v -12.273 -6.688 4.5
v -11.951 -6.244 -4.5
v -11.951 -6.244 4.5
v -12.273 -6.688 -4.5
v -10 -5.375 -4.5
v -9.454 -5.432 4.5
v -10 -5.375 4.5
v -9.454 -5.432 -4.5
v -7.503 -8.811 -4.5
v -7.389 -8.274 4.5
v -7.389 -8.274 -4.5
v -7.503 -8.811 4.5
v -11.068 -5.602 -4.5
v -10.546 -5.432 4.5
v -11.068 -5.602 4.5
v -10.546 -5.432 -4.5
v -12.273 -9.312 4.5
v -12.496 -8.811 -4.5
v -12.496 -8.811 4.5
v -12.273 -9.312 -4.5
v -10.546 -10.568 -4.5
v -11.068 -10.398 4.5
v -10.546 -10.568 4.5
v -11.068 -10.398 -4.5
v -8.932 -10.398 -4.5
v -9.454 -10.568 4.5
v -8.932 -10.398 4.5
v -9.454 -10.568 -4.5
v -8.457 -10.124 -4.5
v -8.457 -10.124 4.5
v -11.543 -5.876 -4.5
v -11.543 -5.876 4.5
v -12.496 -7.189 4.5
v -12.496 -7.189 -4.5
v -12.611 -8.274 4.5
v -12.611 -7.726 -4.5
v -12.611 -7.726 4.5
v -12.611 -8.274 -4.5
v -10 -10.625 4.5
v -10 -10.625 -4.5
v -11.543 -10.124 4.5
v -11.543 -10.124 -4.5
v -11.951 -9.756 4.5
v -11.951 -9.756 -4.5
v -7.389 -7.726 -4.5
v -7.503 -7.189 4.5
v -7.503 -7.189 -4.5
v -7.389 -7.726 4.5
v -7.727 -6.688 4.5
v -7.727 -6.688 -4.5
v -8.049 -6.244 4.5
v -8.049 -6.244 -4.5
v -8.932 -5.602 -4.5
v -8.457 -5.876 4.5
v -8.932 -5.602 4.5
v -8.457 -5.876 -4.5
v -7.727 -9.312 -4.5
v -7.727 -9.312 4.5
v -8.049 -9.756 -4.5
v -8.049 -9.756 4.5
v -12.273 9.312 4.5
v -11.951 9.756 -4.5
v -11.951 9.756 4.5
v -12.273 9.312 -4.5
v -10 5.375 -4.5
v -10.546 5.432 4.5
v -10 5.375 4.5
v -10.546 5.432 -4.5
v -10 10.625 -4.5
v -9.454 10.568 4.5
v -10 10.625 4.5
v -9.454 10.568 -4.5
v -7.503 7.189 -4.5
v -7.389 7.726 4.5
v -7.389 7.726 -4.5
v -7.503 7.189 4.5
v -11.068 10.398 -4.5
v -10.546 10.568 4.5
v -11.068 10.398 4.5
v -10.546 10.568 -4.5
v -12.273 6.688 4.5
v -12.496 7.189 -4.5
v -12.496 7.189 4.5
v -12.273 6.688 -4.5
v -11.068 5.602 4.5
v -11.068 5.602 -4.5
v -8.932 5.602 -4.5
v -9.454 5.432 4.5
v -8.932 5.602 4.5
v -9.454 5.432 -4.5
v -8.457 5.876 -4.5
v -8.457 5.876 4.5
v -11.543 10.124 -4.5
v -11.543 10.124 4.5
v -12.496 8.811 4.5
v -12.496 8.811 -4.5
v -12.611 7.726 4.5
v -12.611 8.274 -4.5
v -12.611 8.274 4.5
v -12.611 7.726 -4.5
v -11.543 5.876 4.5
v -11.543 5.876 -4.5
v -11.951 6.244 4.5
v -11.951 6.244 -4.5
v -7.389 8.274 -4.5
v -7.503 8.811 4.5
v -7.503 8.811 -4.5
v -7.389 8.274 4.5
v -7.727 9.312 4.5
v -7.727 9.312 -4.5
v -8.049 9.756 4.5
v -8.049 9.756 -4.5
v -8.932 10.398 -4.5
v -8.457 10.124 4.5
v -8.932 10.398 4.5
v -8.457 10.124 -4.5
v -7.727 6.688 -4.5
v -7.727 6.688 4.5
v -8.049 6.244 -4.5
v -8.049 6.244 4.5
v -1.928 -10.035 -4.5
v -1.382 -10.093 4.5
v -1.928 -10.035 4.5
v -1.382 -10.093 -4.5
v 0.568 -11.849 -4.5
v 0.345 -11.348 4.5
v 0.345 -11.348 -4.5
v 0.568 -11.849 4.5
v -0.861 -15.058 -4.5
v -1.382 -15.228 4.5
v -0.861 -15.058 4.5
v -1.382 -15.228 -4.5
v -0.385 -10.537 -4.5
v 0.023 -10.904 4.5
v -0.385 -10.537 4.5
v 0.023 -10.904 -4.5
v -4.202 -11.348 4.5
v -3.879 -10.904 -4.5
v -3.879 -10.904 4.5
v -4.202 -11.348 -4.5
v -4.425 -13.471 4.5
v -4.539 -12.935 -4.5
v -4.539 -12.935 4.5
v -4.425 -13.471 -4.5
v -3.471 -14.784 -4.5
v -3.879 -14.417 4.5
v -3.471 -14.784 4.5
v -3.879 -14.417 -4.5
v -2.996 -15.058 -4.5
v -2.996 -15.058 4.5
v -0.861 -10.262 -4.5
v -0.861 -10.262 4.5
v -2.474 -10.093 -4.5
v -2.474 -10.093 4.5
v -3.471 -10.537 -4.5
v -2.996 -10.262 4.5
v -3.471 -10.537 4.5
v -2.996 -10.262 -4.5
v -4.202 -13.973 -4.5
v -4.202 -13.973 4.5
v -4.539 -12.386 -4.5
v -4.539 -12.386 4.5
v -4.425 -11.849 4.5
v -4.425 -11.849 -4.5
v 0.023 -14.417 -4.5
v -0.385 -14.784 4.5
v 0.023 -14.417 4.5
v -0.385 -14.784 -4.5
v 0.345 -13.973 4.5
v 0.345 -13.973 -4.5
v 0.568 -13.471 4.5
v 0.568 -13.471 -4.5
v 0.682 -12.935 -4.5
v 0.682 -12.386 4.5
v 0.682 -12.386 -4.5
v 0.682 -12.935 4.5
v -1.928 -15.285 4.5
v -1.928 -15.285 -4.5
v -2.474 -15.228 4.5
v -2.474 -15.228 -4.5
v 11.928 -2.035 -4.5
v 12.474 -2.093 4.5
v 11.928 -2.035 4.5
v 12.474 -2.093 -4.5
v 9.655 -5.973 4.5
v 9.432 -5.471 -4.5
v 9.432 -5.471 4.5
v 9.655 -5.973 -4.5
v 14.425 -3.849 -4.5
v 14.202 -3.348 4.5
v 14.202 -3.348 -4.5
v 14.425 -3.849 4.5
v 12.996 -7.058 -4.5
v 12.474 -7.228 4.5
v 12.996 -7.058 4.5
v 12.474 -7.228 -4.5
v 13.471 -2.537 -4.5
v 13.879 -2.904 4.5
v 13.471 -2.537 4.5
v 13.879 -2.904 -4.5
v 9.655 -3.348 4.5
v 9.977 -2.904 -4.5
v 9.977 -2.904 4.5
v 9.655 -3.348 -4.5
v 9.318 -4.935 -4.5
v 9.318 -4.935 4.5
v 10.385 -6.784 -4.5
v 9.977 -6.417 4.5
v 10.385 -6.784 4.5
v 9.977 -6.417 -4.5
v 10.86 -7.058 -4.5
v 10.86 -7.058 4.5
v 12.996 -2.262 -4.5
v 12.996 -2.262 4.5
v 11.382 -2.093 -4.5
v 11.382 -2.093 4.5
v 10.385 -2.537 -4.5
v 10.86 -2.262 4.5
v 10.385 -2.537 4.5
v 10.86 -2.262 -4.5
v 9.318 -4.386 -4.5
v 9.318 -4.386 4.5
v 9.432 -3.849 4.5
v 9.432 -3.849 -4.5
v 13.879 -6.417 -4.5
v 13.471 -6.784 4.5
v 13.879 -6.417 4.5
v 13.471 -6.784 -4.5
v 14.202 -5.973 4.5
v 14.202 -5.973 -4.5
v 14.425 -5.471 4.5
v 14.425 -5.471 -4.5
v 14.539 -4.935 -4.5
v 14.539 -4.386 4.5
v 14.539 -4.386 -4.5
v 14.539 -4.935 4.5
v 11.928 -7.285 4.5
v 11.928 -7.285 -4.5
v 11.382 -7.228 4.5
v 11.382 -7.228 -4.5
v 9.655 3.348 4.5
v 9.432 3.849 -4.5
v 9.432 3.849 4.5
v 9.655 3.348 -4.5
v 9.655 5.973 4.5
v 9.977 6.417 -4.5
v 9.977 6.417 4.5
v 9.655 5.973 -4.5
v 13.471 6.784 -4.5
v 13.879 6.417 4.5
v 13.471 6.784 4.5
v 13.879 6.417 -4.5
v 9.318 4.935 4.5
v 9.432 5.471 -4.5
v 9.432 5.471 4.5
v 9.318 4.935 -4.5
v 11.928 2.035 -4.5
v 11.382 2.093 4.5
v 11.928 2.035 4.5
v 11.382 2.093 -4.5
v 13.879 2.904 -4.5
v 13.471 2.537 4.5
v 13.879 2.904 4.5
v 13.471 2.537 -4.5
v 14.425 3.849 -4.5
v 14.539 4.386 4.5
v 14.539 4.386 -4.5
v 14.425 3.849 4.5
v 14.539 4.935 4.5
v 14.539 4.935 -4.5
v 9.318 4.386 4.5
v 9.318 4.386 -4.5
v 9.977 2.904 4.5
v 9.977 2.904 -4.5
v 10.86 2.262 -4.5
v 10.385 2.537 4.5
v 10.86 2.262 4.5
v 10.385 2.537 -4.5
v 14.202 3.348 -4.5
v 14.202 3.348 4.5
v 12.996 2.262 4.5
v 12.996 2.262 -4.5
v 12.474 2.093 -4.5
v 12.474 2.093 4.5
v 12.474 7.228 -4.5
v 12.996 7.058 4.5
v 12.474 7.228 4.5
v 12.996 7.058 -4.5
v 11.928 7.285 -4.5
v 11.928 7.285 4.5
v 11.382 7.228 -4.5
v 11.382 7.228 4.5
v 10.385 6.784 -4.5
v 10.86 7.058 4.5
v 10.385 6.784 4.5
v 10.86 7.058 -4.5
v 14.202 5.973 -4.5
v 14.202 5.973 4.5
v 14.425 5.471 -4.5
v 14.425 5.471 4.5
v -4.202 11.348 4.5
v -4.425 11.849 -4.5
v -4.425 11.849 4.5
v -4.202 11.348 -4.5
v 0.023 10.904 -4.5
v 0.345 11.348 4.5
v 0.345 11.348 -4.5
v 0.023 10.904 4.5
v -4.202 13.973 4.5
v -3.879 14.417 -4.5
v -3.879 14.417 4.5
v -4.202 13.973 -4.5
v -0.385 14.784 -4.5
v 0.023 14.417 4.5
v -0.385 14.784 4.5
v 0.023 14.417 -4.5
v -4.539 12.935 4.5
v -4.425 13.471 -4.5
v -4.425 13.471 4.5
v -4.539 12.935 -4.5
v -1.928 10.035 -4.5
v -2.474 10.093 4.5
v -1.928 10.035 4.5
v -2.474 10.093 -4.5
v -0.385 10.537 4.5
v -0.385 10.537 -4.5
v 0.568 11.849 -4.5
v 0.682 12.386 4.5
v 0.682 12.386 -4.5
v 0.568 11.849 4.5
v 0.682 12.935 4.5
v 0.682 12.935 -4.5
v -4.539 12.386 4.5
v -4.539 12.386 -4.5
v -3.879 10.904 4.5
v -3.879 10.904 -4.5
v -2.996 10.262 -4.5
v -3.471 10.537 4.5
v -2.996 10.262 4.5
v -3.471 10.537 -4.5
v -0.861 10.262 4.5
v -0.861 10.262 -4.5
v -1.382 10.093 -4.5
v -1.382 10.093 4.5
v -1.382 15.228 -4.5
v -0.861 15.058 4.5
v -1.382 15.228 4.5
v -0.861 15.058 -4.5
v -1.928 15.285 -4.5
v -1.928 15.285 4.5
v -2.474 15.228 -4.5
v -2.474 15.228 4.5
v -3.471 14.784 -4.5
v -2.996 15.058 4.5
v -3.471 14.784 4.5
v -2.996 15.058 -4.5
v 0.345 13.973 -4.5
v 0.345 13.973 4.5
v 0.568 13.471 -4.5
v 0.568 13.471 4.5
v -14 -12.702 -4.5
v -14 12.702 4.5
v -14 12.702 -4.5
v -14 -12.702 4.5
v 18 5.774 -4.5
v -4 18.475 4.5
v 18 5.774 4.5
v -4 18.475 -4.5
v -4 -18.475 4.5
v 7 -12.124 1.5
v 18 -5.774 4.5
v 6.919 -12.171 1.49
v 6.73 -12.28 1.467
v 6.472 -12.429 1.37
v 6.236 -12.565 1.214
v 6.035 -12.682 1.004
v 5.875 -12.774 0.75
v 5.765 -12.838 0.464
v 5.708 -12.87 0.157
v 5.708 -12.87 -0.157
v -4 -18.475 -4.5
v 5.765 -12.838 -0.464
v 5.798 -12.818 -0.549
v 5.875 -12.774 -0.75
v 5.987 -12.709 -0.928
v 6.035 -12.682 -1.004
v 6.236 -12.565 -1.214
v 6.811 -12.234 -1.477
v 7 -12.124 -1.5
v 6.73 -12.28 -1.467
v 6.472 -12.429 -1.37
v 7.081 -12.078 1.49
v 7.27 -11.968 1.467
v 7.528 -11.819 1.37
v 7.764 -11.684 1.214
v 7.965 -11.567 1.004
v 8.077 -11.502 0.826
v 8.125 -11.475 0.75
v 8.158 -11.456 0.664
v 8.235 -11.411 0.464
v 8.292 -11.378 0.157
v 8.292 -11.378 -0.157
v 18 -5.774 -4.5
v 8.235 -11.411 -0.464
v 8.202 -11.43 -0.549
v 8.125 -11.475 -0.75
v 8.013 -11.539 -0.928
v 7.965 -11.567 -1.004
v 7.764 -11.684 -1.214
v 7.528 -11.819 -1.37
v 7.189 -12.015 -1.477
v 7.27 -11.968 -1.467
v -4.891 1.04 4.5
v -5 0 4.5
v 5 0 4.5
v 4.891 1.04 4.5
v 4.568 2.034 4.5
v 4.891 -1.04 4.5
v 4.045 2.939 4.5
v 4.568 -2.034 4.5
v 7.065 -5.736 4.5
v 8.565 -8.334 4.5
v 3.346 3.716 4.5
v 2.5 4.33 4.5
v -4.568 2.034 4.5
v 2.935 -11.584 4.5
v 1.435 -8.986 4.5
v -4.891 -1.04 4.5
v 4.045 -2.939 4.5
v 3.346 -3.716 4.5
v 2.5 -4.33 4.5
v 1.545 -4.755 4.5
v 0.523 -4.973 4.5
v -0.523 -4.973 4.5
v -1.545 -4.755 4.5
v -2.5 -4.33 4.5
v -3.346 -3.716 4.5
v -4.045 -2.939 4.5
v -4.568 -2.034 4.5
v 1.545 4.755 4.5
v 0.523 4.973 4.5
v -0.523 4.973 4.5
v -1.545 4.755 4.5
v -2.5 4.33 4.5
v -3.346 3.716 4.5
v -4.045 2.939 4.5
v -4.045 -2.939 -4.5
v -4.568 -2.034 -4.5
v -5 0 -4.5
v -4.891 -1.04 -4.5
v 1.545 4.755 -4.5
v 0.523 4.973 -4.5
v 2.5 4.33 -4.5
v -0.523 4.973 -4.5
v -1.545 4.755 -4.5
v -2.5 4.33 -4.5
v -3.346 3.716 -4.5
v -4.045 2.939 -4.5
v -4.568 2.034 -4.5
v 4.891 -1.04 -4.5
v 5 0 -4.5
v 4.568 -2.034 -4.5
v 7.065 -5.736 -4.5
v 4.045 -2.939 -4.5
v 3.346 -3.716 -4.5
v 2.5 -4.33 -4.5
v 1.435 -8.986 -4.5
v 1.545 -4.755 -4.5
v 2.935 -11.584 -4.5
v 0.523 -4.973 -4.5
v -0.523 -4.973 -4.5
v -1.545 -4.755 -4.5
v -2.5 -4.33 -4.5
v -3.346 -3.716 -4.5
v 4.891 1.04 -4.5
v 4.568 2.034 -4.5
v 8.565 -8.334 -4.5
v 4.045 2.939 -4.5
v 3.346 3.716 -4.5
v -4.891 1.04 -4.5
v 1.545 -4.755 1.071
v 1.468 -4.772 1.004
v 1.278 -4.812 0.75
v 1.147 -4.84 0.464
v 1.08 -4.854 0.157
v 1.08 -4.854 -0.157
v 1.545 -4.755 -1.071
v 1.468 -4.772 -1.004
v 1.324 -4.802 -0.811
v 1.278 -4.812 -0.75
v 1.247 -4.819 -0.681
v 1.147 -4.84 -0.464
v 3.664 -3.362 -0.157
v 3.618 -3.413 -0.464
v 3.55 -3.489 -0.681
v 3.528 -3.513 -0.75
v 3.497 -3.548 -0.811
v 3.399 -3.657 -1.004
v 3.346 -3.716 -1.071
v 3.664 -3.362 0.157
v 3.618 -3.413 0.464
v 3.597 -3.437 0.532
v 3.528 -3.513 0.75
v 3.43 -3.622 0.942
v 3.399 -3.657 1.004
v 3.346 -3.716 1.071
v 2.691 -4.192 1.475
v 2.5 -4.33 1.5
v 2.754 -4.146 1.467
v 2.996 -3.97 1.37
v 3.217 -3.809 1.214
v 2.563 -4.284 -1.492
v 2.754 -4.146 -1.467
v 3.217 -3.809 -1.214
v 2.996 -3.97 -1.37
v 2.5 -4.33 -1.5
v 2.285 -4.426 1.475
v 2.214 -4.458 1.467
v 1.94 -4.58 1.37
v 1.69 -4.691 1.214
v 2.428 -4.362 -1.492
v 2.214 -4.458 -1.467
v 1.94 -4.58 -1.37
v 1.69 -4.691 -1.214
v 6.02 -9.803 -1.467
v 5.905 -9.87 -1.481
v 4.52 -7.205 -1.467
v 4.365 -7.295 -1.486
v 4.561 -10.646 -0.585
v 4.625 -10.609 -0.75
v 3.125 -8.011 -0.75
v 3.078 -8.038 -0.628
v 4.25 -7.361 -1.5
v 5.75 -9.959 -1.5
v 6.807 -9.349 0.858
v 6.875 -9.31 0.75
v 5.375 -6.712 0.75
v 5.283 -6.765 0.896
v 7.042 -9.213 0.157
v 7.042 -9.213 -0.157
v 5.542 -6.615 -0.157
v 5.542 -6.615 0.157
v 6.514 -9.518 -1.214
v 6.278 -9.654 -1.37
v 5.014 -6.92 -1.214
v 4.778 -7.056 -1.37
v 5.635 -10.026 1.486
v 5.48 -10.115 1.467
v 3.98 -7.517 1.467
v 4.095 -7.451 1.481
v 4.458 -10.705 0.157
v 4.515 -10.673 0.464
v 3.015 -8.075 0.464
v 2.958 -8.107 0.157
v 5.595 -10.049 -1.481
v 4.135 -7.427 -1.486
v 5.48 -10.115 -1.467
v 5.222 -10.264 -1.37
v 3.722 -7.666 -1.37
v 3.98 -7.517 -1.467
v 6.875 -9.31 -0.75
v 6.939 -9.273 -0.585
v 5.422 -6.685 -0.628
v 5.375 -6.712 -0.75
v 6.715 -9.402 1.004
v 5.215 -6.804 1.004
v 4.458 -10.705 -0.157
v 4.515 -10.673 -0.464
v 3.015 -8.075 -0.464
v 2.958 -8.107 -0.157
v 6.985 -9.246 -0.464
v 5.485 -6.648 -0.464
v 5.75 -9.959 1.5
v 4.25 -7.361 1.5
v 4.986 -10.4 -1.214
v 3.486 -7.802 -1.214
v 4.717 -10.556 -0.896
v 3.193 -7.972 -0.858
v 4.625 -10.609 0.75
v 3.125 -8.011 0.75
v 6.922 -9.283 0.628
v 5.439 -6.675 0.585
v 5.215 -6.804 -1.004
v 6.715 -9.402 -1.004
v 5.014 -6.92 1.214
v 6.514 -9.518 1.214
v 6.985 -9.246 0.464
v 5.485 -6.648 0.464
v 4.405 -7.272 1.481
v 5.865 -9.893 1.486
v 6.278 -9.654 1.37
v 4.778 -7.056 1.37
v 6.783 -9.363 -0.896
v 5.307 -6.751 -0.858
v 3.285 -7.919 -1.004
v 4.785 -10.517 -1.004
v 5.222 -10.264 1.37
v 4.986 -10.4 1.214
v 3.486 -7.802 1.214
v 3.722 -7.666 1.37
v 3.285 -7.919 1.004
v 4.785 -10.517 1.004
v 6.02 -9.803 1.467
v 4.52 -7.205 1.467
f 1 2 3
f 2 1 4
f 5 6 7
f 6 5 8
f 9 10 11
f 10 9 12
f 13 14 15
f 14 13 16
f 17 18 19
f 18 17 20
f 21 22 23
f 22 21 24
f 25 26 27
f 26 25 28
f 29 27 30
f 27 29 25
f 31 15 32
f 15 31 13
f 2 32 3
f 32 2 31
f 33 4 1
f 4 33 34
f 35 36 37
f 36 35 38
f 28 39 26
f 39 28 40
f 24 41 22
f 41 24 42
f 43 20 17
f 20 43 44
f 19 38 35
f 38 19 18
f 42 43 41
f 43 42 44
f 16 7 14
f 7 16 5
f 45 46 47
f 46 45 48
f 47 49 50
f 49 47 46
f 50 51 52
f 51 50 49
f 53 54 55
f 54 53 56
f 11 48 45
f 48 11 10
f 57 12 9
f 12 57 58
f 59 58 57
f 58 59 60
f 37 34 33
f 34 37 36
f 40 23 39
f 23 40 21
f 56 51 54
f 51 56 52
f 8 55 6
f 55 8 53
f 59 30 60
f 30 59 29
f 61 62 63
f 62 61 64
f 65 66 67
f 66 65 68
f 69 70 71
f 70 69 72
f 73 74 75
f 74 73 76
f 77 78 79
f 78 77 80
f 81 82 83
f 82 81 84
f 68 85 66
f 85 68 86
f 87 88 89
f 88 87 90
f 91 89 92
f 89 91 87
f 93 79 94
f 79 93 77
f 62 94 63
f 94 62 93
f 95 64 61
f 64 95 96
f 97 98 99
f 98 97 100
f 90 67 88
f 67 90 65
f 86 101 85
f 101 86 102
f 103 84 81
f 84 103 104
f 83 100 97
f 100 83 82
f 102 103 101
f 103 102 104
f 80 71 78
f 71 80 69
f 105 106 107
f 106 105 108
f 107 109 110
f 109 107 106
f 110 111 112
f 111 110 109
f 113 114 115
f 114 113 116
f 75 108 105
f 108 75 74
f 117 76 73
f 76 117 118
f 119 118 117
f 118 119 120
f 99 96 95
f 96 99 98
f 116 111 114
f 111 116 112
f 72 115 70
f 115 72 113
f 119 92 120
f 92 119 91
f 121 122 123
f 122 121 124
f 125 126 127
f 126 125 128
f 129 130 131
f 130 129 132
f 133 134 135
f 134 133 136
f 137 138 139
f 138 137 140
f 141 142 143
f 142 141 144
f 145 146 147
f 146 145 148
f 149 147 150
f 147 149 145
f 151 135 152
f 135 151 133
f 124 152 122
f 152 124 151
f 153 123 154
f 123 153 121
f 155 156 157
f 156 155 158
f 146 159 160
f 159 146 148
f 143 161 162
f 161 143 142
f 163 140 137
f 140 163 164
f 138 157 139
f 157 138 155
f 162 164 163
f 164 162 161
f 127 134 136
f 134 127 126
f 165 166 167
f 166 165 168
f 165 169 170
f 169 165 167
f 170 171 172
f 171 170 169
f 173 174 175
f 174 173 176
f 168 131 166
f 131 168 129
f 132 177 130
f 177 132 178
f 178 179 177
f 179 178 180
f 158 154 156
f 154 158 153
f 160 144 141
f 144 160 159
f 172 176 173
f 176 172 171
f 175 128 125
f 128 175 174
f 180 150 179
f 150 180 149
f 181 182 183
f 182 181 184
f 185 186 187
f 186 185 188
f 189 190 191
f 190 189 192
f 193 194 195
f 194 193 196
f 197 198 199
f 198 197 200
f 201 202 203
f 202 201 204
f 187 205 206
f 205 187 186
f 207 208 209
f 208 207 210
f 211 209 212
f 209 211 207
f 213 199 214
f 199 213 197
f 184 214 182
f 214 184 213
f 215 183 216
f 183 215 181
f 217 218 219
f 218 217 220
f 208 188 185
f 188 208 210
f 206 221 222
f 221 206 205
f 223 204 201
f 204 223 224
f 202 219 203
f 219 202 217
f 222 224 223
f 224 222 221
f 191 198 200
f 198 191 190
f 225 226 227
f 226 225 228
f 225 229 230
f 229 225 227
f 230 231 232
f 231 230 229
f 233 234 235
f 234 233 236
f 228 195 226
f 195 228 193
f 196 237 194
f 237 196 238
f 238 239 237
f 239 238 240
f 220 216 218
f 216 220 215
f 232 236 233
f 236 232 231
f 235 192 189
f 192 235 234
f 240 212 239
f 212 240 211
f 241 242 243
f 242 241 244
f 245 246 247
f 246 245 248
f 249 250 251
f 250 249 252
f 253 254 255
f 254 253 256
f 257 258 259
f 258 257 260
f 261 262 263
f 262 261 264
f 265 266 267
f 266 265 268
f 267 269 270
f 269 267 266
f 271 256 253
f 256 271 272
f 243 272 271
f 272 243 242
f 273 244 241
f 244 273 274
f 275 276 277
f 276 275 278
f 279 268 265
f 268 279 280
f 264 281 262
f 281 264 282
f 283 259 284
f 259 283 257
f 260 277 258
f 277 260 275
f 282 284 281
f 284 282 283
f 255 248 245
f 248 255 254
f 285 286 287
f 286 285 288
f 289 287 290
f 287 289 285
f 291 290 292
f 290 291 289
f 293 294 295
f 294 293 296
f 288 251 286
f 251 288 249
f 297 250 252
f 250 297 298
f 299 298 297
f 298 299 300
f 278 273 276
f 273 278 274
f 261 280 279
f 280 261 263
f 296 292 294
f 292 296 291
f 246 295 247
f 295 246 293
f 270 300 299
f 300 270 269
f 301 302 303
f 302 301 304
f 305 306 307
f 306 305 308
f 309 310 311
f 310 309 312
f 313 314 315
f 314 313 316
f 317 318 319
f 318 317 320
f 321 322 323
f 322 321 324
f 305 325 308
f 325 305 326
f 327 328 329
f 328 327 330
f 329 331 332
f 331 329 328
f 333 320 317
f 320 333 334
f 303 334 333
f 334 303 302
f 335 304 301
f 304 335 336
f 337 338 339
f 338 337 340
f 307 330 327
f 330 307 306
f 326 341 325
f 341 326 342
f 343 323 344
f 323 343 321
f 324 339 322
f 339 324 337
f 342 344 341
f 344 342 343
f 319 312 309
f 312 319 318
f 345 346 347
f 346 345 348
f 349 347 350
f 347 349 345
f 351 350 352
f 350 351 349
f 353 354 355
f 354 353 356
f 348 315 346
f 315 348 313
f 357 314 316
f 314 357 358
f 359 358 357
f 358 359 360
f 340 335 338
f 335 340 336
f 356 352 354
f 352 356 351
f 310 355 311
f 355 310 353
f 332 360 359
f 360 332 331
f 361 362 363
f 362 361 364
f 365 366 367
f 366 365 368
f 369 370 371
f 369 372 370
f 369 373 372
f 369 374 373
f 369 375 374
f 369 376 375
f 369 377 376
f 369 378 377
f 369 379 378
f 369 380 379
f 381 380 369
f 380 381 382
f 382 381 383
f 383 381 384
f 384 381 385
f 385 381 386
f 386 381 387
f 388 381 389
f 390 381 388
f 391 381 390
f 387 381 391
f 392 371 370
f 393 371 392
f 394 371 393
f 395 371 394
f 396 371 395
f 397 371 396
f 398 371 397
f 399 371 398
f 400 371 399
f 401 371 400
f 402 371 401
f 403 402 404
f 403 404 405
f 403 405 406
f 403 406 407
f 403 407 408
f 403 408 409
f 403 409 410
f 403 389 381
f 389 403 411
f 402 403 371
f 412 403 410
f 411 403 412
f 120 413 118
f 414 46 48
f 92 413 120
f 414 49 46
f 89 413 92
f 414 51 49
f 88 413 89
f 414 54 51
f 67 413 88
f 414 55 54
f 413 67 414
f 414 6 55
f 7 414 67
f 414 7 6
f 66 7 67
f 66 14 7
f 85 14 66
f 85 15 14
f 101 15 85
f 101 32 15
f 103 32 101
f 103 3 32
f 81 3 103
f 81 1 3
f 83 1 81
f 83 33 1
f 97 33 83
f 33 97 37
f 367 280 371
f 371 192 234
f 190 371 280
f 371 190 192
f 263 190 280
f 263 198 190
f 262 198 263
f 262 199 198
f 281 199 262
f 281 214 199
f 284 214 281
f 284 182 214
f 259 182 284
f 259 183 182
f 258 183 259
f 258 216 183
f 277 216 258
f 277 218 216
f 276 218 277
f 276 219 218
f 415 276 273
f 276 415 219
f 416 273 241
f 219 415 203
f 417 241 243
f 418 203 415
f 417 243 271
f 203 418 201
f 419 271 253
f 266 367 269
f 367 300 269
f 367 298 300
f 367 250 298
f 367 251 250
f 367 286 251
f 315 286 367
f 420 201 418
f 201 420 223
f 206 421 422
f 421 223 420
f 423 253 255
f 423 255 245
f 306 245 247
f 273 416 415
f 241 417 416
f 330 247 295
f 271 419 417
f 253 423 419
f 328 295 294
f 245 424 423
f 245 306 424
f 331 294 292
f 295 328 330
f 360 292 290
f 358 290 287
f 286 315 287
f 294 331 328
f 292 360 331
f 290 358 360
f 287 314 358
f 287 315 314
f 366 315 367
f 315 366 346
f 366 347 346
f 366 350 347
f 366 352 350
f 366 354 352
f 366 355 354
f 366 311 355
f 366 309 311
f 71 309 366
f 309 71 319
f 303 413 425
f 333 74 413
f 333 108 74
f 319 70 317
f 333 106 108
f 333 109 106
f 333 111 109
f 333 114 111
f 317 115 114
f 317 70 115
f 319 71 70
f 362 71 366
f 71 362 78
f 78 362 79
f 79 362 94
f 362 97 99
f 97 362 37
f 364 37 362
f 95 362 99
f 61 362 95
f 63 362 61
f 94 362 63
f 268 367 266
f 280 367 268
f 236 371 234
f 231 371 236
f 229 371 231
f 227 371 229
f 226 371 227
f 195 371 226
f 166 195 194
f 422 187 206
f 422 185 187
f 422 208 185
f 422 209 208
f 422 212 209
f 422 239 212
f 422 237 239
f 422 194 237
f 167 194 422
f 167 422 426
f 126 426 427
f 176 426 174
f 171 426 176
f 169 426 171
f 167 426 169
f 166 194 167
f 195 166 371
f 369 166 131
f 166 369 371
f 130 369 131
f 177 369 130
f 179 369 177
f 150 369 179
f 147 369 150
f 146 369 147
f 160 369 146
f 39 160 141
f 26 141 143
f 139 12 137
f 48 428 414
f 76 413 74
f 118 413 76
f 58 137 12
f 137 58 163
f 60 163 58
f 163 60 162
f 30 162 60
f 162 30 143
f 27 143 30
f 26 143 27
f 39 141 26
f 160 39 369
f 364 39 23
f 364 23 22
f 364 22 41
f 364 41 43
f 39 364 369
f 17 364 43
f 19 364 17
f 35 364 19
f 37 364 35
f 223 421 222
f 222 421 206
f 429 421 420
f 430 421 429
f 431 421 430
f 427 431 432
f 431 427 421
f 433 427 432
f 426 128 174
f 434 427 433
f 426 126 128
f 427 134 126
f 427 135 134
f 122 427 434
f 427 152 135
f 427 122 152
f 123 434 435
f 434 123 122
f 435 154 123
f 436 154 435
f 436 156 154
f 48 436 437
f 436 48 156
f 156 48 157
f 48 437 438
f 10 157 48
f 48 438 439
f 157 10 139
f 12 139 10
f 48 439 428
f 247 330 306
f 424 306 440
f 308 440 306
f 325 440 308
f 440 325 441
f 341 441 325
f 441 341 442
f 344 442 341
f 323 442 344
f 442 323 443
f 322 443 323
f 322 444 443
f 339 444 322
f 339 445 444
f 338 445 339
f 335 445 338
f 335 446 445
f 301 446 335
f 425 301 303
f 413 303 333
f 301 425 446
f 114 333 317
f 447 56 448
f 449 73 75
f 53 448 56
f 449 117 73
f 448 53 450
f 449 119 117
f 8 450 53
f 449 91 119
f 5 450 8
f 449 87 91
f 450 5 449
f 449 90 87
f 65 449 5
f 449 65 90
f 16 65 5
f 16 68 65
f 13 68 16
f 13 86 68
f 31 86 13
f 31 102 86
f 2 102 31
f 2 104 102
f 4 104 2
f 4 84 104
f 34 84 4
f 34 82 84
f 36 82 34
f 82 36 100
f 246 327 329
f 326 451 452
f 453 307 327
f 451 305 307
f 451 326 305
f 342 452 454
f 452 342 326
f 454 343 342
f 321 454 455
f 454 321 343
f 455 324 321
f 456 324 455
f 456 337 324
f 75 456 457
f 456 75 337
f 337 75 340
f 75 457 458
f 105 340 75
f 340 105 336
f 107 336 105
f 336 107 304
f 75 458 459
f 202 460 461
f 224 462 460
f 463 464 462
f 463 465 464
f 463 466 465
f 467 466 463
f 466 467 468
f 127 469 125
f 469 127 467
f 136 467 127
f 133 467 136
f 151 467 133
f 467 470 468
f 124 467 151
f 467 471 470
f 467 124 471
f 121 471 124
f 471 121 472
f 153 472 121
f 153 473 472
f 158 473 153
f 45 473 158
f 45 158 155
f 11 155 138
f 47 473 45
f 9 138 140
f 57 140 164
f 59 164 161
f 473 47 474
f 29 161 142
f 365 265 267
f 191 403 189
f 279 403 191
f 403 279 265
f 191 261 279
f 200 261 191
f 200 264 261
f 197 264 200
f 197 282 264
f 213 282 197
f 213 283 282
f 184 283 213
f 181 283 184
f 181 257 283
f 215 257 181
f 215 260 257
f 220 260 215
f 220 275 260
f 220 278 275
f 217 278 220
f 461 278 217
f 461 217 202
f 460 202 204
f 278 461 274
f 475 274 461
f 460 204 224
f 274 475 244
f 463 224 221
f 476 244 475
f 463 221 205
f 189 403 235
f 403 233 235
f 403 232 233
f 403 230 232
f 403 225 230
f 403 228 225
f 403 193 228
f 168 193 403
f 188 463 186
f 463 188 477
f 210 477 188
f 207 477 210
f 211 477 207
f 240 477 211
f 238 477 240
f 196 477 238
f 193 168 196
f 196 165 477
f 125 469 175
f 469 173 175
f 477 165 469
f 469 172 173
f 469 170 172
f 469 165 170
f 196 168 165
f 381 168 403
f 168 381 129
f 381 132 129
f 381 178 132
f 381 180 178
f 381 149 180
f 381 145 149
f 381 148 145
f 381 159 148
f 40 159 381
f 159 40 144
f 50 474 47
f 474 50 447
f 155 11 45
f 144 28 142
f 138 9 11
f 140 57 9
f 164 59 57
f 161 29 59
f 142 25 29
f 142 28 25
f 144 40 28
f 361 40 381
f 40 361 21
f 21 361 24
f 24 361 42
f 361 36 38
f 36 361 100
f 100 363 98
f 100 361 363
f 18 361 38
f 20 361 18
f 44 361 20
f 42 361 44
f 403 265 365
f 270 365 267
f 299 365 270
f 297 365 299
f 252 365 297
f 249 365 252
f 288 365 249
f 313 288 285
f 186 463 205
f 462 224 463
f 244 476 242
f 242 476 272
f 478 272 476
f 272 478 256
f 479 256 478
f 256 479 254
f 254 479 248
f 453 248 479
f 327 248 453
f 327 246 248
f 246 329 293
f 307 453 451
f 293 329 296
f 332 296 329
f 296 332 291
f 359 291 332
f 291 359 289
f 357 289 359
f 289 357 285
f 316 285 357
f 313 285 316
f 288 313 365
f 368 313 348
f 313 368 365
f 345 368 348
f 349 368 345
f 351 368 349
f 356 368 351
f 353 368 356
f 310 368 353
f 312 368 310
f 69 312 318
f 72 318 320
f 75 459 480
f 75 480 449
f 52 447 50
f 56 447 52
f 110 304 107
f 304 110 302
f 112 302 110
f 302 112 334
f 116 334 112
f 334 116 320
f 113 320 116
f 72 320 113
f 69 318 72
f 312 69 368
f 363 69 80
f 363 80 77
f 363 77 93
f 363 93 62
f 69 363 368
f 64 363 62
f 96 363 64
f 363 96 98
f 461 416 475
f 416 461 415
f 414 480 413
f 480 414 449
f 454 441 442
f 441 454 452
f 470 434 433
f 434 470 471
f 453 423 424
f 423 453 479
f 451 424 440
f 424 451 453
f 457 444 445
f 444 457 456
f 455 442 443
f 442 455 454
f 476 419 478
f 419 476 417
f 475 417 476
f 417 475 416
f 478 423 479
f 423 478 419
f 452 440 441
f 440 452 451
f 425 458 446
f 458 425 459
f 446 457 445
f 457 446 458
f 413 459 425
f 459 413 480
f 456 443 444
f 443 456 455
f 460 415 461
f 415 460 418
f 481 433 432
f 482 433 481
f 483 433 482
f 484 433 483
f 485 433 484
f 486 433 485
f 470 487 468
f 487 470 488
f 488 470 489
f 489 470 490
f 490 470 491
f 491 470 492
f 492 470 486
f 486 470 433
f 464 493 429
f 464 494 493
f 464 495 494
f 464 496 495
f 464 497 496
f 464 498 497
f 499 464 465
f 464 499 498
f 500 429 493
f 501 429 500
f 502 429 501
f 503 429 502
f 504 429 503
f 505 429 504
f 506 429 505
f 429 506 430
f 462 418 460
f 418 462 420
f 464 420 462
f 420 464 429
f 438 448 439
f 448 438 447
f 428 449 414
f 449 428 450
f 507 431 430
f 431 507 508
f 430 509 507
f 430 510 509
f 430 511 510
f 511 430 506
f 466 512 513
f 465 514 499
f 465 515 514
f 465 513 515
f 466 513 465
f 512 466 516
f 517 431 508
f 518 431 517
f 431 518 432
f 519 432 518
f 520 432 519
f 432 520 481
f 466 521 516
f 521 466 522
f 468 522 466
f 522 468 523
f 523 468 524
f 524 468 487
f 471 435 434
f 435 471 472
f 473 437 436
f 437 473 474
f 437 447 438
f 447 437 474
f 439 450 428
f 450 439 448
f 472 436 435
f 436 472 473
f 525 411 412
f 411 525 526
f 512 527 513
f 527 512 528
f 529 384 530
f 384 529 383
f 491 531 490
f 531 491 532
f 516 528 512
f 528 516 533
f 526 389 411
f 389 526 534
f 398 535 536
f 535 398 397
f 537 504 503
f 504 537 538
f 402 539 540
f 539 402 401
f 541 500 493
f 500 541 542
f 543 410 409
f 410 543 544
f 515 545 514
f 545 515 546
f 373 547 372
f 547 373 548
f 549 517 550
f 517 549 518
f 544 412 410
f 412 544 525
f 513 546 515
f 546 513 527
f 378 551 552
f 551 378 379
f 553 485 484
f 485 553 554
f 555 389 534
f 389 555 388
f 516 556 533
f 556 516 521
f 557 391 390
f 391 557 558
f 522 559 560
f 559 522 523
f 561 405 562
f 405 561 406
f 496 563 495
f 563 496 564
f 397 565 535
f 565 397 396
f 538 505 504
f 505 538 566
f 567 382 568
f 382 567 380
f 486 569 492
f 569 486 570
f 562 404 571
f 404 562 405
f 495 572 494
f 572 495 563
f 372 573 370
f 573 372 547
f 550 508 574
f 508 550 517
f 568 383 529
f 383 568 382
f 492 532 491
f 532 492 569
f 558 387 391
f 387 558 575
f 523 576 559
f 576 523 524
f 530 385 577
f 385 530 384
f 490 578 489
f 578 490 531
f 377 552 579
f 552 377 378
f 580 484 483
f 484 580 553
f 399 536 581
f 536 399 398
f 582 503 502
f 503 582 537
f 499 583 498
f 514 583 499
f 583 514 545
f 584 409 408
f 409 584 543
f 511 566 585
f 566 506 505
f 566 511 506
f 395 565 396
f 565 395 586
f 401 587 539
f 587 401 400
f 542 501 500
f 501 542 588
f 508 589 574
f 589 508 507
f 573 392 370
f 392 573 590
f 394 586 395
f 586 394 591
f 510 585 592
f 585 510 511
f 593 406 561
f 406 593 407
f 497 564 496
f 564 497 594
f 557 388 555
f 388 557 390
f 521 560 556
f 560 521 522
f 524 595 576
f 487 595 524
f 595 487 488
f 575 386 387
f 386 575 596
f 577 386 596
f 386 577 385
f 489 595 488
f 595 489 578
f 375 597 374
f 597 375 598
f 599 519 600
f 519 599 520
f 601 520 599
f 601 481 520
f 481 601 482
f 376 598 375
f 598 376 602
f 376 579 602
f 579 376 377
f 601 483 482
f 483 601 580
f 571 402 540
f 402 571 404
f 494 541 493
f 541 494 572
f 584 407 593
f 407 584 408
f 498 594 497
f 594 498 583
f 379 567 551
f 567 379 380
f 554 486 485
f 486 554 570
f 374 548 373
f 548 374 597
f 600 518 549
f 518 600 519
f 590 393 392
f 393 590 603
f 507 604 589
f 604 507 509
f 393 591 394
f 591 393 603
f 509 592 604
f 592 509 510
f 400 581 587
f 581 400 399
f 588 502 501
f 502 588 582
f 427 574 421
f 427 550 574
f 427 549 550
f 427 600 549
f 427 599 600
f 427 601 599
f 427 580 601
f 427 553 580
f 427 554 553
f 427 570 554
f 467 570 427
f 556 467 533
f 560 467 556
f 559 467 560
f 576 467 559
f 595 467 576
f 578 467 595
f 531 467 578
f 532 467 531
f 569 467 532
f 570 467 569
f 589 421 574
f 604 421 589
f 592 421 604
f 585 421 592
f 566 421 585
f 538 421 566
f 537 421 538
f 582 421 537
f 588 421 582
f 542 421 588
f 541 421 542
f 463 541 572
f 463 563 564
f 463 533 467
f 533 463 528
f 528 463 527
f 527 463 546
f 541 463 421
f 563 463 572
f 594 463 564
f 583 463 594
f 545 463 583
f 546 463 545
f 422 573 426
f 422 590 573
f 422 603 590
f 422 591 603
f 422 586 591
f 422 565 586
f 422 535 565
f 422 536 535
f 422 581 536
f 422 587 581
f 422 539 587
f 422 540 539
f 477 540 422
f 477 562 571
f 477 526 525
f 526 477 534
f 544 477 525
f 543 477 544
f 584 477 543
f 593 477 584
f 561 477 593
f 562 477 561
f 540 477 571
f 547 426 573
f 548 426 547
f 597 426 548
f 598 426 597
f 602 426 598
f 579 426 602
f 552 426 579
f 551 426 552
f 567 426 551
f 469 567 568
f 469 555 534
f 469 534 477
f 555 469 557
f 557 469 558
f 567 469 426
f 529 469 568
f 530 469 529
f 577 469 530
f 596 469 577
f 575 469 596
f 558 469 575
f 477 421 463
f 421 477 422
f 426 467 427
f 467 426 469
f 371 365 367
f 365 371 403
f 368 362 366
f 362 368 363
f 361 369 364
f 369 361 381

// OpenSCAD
beam_width    = 8;
hole_diameter = 5.25;
hole_radius   = hole_diameter / 2;
center_hole   = 10;

clipping_distance = 26;

difference(){
  cylinder(r=56/2, h=9, $fn=3, center=true);

  translate([0,0,-10])
  cylinder(d = center_hole, h=20, $fn=30);


  rotate([60,90,0])
  translate([0,0,0])
  cylinder(r=1.5, h=20, $fn=30);

  rotate(-60)
  translate([10,0,0])
  cube([3,6.5,30], center=true);

  translate([clipping_distance,0,0])
  cube([16,16,10], center=true);

  rotate(120)
  translate([clipping_distance,0,0])
  cube([16,16,10], center=true);

  rotate(240)
  translate([clipping_distance,0,0])
  cube([16,16,10], center=true);

  

  rotate(90)
  translate([-12,6,0])
  beam(3);


  rotate(30)
  translate([-12,-14,0])
  beam(3);

  rotate(150)
  translate([-12,-14,0])
  beam(3);

}


module beam(number_of_holes) {
    beam_length = number_of_holes * beam_width;
		for (x=[4 : 16 : beam_length]) {
			//rotate([90,0,0])
			translate([x,beam_width/2,-10])
			cylinder(r=hole_radius, h=20, $fn=30);
         }
}     
